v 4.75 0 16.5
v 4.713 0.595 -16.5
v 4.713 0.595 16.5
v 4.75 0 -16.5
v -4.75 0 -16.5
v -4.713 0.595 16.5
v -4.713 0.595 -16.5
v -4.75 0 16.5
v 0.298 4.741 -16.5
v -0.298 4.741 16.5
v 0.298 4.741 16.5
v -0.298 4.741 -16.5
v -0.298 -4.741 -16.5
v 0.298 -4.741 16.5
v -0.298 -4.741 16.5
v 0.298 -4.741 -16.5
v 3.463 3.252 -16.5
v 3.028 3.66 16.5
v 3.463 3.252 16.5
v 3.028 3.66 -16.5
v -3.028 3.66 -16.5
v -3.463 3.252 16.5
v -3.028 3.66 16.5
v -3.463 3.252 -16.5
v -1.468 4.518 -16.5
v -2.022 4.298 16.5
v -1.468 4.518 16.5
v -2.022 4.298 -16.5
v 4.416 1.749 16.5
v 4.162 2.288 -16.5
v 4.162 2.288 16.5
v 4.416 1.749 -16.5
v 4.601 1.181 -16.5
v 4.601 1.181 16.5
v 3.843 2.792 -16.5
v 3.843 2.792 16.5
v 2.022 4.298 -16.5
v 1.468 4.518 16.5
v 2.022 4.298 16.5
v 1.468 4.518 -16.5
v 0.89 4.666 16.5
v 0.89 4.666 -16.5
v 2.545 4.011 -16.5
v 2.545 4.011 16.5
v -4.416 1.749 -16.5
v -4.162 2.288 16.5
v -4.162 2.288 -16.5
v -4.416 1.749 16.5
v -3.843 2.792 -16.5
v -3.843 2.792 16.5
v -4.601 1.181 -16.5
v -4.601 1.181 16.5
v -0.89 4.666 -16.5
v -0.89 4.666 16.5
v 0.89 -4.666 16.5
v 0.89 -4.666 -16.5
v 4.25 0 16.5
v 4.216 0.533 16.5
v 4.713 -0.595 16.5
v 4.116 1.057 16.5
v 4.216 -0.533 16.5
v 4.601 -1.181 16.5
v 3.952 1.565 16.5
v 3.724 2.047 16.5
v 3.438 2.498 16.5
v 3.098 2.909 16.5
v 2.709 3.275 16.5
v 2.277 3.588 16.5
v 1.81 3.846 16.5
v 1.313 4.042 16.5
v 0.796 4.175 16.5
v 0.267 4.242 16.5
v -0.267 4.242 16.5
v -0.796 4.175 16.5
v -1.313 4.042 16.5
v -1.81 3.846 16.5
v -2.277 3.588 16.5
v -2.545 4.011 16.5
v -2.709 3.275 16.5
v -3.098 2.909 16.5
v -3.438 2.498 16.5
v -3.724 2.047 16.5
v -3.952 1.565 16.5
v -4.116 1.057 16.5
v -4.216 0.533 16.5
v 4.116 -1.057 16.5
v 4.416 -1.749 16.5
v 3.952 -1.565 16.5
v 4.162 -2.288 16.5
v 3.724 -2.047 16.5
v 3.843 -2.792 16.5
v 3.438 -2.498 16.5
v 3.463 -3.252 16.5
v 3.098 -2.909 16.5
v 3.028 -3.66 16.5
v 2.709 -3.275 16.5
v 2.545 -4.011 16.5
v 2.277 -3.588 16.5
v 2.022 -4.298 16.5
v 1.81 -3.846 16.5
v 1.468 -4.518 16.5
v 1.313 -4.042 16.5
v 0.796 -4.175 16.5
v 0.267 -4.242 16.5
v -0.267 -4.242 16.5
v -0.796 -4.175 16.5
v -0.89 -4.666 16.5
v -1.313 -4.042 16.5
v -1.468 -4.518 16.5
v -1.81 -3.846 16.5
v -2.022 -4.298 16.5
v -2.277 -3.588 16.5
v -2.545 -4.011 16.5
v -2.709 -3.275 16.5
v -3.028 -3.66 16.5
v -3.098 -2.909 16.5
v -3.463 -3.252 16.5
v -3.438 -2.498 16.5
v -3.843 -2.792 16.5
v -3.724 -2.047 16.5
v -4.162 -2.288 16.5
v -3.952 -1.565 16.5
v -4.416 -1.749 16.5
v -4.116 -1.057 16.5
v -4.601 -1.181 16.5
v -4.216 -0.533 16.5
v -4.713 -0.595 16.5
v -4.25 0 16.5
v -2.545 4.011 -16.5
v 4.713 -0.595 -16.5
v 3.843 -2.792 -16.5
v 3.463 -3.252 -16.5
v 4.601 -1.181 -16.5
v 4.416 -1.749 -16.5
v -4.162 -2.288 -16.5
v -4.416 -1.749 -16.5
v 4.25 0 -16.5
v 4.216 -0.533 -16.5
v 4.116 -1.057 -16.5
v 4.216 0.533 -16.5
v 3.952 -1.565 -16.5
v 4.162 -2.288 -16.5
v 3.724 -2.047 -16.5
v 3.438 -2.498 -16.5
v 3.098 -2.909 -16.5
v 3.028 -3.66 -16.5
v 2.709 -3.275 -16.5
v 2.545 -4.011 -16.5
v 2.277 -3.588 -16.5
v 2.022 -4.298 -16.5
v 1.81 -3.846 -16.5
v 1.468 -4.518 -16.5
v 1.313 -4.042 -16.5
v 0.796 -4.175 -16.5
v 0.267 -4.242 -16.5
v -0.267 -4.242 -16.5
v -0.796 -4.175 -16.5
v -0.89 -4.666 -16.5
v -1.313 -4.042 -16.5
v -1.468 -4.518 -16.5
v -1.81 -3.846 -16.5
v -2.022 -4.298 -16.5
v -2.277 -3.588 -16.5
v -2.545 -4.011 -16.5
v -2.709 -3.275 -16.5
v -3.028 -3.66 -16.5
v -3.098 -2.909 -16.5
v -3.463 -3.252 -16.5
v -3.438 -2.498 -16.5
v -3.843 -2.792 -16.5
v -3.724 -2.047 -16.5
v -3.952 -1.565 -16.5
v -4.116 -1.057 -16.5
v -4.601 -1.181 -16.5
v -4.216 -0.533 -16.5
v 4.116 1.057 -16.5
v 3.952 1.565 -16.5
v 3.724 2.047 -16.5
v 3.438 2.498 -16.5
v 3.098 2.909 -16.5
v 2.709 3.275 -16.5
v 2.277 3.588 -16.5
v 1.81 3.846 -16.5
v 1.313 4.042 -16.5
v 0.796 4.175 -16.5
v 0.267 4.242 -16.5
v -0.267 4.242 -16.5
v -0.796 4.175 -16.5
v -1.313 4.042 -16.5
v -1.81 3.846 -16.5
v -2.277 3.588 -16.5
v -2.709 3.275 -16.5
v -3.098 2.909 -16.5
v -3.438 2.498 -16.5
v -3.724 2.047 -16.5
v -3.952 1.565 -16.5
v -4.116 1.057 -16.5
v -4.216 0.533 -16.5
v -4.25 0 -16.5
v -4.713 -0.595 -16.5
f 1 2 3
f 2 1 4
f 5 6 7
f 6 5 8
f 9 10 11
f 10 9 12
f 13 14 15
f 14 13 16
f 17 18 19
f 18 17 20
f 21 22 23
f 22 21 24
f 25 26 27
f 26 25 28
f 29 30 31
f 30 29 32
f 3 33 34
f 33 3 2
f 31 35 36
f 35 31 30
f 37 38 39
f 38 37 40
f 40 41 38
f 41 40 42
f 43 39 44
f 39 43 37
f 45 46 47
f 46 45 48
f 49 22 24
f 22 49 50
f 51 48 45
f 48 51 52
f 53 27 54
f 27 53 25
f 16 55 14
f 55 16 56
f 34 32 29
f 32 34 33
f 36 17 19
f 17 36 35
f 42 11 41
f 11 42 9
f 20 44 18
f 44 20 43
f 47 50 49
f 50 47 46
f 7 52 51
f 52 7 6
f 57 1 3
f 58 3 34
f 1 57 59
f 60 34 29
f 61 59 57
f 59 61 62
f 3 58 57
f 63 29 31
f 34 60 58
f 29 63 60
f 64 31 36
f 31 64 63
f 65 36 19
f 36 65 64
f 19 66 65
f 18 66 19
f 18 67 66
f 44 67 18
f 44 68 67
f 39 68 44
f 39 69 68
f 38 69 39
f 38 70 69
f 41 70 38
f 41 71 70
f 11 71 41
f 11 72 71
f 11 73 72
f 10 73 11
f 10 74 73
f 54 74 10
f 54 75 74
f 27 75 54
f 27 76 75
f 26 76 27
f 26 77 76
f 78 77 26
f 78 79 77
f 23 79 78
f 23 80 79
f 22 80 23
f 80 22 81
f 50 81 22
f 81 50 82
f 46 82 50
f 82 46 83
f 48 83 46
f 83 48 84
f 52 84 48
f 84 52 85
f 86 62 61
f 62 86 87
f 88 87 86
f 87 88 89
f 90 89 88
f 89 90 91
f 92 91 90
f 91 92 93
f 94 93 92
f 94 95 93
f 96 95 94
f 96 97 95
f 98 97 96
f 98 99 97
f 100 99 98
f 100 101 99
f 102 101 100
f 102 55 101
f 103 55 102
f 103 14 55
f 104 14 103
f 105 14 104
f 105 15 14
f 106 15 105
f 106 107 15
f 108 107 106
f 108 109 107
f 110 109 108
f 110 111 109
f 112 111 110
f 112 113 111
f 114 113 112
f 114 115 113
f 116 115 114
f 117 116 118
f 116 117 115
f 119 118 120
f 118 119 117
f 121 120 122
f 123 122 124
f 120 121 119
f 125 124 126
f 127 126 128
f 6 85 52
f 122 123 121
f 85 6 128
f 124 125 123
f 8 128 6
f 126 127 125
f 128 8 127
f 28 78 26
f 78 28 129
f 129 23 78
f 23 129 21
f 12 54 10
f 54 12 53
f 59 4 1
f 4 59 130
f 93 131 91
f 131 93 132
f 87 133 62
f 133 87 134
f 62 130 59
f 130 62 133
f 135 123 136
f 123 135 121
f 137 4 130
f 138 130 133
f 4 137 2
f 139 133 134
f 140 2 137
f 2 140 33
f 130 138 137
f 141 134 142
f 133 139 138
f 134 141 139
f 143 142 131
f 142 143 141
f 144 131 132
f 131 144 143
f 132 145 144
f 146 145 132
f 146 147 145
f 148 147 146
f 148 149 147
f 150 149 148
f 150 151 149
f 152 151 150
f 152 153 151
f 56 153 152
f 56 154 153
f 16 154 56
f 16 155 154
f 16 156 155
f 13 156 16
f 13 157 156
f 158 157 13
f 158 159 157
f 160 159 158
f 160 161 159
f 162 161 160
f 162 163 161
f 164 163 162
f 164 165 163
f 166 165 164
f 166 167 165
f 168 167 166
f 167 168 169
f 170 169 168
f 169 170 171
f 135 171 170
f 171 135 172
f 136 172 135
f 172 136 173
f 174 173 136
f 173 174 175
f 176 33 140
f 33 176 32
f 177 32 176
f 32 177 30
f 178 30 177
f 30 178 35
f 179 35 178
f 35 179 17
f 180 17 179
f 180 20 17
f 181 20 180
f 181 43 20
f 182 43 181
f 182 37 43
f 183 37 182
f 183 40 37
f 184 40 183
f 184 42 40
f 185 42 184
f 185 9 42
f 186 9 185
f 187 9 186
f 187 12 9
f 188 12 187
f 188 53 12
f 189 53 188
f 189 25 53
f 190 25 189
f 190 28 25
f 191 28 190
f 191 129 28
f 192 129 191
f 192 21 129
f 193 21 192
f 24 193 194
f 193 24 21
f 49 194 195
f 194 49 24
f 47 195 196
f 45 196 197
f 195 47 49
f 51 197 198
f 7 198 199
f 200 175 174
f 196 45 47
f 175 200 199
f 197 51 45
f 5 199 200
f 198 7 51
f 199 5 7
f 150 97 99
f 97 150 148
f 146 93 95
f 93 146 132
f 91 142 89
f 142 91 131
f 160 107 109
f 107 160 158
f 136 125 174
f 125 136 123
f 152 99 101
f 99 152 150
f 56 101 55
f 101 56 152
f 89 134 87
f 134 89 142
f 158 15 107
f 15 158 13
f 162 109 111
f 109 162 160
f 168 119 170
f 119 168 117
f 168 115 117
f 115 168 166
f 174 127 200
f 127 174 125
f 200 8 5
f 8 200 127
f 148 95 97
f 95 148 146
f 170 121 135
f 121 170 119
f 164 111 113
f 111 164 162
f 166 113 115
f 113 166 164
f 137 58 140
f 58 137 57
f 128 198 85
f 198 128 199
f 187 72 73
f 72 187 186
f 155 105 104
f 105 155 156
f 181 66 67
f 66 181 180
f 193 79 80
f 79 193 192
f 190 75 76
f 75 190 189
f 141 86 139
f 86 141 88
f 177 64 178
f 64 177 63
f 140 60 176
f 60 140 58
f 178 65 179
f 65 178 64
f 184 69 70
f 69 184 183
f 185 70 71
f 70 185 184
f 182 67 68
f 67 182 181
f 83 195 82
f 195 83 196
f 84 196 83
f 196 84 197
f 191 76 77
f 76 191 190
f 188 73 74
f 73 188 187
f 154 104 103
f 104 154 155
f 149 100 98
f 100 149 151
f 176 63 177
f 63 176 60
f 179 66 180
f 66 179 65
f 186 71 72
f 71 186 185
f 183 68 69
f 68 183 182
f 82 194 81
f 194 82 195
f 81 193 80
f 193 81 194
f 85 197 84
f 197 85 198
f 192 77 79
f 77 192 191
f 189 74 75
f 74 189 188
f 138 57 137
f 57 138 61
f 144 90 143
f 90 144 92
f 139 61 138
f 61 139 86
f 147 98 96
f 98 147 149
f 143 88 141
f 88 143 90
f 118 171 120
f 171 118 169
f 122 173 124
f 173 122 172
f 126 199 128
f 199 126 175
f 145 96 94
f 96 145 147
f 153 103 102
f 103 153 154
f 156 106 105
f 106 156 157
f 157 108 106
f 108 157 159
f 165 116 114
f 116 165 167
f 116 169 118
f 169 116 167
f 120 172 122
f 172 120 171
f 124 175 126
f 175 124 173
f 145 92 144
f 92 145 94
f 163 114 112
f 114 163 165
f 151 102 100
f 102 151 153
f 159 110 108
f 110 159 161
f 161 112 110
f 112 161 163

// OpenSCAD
$fn = 50;


difference() {
	union() {
		translate(v = [0, 0, -16.5000000000]) {
			cylinder(h = 33, r = 4.7500000000);
		}
	}
	union() {
		translate(v = [0, 0, -100.0000000000]) {
			cylinder(h = 200, r = 4.2500000000);
		}
	}
}
